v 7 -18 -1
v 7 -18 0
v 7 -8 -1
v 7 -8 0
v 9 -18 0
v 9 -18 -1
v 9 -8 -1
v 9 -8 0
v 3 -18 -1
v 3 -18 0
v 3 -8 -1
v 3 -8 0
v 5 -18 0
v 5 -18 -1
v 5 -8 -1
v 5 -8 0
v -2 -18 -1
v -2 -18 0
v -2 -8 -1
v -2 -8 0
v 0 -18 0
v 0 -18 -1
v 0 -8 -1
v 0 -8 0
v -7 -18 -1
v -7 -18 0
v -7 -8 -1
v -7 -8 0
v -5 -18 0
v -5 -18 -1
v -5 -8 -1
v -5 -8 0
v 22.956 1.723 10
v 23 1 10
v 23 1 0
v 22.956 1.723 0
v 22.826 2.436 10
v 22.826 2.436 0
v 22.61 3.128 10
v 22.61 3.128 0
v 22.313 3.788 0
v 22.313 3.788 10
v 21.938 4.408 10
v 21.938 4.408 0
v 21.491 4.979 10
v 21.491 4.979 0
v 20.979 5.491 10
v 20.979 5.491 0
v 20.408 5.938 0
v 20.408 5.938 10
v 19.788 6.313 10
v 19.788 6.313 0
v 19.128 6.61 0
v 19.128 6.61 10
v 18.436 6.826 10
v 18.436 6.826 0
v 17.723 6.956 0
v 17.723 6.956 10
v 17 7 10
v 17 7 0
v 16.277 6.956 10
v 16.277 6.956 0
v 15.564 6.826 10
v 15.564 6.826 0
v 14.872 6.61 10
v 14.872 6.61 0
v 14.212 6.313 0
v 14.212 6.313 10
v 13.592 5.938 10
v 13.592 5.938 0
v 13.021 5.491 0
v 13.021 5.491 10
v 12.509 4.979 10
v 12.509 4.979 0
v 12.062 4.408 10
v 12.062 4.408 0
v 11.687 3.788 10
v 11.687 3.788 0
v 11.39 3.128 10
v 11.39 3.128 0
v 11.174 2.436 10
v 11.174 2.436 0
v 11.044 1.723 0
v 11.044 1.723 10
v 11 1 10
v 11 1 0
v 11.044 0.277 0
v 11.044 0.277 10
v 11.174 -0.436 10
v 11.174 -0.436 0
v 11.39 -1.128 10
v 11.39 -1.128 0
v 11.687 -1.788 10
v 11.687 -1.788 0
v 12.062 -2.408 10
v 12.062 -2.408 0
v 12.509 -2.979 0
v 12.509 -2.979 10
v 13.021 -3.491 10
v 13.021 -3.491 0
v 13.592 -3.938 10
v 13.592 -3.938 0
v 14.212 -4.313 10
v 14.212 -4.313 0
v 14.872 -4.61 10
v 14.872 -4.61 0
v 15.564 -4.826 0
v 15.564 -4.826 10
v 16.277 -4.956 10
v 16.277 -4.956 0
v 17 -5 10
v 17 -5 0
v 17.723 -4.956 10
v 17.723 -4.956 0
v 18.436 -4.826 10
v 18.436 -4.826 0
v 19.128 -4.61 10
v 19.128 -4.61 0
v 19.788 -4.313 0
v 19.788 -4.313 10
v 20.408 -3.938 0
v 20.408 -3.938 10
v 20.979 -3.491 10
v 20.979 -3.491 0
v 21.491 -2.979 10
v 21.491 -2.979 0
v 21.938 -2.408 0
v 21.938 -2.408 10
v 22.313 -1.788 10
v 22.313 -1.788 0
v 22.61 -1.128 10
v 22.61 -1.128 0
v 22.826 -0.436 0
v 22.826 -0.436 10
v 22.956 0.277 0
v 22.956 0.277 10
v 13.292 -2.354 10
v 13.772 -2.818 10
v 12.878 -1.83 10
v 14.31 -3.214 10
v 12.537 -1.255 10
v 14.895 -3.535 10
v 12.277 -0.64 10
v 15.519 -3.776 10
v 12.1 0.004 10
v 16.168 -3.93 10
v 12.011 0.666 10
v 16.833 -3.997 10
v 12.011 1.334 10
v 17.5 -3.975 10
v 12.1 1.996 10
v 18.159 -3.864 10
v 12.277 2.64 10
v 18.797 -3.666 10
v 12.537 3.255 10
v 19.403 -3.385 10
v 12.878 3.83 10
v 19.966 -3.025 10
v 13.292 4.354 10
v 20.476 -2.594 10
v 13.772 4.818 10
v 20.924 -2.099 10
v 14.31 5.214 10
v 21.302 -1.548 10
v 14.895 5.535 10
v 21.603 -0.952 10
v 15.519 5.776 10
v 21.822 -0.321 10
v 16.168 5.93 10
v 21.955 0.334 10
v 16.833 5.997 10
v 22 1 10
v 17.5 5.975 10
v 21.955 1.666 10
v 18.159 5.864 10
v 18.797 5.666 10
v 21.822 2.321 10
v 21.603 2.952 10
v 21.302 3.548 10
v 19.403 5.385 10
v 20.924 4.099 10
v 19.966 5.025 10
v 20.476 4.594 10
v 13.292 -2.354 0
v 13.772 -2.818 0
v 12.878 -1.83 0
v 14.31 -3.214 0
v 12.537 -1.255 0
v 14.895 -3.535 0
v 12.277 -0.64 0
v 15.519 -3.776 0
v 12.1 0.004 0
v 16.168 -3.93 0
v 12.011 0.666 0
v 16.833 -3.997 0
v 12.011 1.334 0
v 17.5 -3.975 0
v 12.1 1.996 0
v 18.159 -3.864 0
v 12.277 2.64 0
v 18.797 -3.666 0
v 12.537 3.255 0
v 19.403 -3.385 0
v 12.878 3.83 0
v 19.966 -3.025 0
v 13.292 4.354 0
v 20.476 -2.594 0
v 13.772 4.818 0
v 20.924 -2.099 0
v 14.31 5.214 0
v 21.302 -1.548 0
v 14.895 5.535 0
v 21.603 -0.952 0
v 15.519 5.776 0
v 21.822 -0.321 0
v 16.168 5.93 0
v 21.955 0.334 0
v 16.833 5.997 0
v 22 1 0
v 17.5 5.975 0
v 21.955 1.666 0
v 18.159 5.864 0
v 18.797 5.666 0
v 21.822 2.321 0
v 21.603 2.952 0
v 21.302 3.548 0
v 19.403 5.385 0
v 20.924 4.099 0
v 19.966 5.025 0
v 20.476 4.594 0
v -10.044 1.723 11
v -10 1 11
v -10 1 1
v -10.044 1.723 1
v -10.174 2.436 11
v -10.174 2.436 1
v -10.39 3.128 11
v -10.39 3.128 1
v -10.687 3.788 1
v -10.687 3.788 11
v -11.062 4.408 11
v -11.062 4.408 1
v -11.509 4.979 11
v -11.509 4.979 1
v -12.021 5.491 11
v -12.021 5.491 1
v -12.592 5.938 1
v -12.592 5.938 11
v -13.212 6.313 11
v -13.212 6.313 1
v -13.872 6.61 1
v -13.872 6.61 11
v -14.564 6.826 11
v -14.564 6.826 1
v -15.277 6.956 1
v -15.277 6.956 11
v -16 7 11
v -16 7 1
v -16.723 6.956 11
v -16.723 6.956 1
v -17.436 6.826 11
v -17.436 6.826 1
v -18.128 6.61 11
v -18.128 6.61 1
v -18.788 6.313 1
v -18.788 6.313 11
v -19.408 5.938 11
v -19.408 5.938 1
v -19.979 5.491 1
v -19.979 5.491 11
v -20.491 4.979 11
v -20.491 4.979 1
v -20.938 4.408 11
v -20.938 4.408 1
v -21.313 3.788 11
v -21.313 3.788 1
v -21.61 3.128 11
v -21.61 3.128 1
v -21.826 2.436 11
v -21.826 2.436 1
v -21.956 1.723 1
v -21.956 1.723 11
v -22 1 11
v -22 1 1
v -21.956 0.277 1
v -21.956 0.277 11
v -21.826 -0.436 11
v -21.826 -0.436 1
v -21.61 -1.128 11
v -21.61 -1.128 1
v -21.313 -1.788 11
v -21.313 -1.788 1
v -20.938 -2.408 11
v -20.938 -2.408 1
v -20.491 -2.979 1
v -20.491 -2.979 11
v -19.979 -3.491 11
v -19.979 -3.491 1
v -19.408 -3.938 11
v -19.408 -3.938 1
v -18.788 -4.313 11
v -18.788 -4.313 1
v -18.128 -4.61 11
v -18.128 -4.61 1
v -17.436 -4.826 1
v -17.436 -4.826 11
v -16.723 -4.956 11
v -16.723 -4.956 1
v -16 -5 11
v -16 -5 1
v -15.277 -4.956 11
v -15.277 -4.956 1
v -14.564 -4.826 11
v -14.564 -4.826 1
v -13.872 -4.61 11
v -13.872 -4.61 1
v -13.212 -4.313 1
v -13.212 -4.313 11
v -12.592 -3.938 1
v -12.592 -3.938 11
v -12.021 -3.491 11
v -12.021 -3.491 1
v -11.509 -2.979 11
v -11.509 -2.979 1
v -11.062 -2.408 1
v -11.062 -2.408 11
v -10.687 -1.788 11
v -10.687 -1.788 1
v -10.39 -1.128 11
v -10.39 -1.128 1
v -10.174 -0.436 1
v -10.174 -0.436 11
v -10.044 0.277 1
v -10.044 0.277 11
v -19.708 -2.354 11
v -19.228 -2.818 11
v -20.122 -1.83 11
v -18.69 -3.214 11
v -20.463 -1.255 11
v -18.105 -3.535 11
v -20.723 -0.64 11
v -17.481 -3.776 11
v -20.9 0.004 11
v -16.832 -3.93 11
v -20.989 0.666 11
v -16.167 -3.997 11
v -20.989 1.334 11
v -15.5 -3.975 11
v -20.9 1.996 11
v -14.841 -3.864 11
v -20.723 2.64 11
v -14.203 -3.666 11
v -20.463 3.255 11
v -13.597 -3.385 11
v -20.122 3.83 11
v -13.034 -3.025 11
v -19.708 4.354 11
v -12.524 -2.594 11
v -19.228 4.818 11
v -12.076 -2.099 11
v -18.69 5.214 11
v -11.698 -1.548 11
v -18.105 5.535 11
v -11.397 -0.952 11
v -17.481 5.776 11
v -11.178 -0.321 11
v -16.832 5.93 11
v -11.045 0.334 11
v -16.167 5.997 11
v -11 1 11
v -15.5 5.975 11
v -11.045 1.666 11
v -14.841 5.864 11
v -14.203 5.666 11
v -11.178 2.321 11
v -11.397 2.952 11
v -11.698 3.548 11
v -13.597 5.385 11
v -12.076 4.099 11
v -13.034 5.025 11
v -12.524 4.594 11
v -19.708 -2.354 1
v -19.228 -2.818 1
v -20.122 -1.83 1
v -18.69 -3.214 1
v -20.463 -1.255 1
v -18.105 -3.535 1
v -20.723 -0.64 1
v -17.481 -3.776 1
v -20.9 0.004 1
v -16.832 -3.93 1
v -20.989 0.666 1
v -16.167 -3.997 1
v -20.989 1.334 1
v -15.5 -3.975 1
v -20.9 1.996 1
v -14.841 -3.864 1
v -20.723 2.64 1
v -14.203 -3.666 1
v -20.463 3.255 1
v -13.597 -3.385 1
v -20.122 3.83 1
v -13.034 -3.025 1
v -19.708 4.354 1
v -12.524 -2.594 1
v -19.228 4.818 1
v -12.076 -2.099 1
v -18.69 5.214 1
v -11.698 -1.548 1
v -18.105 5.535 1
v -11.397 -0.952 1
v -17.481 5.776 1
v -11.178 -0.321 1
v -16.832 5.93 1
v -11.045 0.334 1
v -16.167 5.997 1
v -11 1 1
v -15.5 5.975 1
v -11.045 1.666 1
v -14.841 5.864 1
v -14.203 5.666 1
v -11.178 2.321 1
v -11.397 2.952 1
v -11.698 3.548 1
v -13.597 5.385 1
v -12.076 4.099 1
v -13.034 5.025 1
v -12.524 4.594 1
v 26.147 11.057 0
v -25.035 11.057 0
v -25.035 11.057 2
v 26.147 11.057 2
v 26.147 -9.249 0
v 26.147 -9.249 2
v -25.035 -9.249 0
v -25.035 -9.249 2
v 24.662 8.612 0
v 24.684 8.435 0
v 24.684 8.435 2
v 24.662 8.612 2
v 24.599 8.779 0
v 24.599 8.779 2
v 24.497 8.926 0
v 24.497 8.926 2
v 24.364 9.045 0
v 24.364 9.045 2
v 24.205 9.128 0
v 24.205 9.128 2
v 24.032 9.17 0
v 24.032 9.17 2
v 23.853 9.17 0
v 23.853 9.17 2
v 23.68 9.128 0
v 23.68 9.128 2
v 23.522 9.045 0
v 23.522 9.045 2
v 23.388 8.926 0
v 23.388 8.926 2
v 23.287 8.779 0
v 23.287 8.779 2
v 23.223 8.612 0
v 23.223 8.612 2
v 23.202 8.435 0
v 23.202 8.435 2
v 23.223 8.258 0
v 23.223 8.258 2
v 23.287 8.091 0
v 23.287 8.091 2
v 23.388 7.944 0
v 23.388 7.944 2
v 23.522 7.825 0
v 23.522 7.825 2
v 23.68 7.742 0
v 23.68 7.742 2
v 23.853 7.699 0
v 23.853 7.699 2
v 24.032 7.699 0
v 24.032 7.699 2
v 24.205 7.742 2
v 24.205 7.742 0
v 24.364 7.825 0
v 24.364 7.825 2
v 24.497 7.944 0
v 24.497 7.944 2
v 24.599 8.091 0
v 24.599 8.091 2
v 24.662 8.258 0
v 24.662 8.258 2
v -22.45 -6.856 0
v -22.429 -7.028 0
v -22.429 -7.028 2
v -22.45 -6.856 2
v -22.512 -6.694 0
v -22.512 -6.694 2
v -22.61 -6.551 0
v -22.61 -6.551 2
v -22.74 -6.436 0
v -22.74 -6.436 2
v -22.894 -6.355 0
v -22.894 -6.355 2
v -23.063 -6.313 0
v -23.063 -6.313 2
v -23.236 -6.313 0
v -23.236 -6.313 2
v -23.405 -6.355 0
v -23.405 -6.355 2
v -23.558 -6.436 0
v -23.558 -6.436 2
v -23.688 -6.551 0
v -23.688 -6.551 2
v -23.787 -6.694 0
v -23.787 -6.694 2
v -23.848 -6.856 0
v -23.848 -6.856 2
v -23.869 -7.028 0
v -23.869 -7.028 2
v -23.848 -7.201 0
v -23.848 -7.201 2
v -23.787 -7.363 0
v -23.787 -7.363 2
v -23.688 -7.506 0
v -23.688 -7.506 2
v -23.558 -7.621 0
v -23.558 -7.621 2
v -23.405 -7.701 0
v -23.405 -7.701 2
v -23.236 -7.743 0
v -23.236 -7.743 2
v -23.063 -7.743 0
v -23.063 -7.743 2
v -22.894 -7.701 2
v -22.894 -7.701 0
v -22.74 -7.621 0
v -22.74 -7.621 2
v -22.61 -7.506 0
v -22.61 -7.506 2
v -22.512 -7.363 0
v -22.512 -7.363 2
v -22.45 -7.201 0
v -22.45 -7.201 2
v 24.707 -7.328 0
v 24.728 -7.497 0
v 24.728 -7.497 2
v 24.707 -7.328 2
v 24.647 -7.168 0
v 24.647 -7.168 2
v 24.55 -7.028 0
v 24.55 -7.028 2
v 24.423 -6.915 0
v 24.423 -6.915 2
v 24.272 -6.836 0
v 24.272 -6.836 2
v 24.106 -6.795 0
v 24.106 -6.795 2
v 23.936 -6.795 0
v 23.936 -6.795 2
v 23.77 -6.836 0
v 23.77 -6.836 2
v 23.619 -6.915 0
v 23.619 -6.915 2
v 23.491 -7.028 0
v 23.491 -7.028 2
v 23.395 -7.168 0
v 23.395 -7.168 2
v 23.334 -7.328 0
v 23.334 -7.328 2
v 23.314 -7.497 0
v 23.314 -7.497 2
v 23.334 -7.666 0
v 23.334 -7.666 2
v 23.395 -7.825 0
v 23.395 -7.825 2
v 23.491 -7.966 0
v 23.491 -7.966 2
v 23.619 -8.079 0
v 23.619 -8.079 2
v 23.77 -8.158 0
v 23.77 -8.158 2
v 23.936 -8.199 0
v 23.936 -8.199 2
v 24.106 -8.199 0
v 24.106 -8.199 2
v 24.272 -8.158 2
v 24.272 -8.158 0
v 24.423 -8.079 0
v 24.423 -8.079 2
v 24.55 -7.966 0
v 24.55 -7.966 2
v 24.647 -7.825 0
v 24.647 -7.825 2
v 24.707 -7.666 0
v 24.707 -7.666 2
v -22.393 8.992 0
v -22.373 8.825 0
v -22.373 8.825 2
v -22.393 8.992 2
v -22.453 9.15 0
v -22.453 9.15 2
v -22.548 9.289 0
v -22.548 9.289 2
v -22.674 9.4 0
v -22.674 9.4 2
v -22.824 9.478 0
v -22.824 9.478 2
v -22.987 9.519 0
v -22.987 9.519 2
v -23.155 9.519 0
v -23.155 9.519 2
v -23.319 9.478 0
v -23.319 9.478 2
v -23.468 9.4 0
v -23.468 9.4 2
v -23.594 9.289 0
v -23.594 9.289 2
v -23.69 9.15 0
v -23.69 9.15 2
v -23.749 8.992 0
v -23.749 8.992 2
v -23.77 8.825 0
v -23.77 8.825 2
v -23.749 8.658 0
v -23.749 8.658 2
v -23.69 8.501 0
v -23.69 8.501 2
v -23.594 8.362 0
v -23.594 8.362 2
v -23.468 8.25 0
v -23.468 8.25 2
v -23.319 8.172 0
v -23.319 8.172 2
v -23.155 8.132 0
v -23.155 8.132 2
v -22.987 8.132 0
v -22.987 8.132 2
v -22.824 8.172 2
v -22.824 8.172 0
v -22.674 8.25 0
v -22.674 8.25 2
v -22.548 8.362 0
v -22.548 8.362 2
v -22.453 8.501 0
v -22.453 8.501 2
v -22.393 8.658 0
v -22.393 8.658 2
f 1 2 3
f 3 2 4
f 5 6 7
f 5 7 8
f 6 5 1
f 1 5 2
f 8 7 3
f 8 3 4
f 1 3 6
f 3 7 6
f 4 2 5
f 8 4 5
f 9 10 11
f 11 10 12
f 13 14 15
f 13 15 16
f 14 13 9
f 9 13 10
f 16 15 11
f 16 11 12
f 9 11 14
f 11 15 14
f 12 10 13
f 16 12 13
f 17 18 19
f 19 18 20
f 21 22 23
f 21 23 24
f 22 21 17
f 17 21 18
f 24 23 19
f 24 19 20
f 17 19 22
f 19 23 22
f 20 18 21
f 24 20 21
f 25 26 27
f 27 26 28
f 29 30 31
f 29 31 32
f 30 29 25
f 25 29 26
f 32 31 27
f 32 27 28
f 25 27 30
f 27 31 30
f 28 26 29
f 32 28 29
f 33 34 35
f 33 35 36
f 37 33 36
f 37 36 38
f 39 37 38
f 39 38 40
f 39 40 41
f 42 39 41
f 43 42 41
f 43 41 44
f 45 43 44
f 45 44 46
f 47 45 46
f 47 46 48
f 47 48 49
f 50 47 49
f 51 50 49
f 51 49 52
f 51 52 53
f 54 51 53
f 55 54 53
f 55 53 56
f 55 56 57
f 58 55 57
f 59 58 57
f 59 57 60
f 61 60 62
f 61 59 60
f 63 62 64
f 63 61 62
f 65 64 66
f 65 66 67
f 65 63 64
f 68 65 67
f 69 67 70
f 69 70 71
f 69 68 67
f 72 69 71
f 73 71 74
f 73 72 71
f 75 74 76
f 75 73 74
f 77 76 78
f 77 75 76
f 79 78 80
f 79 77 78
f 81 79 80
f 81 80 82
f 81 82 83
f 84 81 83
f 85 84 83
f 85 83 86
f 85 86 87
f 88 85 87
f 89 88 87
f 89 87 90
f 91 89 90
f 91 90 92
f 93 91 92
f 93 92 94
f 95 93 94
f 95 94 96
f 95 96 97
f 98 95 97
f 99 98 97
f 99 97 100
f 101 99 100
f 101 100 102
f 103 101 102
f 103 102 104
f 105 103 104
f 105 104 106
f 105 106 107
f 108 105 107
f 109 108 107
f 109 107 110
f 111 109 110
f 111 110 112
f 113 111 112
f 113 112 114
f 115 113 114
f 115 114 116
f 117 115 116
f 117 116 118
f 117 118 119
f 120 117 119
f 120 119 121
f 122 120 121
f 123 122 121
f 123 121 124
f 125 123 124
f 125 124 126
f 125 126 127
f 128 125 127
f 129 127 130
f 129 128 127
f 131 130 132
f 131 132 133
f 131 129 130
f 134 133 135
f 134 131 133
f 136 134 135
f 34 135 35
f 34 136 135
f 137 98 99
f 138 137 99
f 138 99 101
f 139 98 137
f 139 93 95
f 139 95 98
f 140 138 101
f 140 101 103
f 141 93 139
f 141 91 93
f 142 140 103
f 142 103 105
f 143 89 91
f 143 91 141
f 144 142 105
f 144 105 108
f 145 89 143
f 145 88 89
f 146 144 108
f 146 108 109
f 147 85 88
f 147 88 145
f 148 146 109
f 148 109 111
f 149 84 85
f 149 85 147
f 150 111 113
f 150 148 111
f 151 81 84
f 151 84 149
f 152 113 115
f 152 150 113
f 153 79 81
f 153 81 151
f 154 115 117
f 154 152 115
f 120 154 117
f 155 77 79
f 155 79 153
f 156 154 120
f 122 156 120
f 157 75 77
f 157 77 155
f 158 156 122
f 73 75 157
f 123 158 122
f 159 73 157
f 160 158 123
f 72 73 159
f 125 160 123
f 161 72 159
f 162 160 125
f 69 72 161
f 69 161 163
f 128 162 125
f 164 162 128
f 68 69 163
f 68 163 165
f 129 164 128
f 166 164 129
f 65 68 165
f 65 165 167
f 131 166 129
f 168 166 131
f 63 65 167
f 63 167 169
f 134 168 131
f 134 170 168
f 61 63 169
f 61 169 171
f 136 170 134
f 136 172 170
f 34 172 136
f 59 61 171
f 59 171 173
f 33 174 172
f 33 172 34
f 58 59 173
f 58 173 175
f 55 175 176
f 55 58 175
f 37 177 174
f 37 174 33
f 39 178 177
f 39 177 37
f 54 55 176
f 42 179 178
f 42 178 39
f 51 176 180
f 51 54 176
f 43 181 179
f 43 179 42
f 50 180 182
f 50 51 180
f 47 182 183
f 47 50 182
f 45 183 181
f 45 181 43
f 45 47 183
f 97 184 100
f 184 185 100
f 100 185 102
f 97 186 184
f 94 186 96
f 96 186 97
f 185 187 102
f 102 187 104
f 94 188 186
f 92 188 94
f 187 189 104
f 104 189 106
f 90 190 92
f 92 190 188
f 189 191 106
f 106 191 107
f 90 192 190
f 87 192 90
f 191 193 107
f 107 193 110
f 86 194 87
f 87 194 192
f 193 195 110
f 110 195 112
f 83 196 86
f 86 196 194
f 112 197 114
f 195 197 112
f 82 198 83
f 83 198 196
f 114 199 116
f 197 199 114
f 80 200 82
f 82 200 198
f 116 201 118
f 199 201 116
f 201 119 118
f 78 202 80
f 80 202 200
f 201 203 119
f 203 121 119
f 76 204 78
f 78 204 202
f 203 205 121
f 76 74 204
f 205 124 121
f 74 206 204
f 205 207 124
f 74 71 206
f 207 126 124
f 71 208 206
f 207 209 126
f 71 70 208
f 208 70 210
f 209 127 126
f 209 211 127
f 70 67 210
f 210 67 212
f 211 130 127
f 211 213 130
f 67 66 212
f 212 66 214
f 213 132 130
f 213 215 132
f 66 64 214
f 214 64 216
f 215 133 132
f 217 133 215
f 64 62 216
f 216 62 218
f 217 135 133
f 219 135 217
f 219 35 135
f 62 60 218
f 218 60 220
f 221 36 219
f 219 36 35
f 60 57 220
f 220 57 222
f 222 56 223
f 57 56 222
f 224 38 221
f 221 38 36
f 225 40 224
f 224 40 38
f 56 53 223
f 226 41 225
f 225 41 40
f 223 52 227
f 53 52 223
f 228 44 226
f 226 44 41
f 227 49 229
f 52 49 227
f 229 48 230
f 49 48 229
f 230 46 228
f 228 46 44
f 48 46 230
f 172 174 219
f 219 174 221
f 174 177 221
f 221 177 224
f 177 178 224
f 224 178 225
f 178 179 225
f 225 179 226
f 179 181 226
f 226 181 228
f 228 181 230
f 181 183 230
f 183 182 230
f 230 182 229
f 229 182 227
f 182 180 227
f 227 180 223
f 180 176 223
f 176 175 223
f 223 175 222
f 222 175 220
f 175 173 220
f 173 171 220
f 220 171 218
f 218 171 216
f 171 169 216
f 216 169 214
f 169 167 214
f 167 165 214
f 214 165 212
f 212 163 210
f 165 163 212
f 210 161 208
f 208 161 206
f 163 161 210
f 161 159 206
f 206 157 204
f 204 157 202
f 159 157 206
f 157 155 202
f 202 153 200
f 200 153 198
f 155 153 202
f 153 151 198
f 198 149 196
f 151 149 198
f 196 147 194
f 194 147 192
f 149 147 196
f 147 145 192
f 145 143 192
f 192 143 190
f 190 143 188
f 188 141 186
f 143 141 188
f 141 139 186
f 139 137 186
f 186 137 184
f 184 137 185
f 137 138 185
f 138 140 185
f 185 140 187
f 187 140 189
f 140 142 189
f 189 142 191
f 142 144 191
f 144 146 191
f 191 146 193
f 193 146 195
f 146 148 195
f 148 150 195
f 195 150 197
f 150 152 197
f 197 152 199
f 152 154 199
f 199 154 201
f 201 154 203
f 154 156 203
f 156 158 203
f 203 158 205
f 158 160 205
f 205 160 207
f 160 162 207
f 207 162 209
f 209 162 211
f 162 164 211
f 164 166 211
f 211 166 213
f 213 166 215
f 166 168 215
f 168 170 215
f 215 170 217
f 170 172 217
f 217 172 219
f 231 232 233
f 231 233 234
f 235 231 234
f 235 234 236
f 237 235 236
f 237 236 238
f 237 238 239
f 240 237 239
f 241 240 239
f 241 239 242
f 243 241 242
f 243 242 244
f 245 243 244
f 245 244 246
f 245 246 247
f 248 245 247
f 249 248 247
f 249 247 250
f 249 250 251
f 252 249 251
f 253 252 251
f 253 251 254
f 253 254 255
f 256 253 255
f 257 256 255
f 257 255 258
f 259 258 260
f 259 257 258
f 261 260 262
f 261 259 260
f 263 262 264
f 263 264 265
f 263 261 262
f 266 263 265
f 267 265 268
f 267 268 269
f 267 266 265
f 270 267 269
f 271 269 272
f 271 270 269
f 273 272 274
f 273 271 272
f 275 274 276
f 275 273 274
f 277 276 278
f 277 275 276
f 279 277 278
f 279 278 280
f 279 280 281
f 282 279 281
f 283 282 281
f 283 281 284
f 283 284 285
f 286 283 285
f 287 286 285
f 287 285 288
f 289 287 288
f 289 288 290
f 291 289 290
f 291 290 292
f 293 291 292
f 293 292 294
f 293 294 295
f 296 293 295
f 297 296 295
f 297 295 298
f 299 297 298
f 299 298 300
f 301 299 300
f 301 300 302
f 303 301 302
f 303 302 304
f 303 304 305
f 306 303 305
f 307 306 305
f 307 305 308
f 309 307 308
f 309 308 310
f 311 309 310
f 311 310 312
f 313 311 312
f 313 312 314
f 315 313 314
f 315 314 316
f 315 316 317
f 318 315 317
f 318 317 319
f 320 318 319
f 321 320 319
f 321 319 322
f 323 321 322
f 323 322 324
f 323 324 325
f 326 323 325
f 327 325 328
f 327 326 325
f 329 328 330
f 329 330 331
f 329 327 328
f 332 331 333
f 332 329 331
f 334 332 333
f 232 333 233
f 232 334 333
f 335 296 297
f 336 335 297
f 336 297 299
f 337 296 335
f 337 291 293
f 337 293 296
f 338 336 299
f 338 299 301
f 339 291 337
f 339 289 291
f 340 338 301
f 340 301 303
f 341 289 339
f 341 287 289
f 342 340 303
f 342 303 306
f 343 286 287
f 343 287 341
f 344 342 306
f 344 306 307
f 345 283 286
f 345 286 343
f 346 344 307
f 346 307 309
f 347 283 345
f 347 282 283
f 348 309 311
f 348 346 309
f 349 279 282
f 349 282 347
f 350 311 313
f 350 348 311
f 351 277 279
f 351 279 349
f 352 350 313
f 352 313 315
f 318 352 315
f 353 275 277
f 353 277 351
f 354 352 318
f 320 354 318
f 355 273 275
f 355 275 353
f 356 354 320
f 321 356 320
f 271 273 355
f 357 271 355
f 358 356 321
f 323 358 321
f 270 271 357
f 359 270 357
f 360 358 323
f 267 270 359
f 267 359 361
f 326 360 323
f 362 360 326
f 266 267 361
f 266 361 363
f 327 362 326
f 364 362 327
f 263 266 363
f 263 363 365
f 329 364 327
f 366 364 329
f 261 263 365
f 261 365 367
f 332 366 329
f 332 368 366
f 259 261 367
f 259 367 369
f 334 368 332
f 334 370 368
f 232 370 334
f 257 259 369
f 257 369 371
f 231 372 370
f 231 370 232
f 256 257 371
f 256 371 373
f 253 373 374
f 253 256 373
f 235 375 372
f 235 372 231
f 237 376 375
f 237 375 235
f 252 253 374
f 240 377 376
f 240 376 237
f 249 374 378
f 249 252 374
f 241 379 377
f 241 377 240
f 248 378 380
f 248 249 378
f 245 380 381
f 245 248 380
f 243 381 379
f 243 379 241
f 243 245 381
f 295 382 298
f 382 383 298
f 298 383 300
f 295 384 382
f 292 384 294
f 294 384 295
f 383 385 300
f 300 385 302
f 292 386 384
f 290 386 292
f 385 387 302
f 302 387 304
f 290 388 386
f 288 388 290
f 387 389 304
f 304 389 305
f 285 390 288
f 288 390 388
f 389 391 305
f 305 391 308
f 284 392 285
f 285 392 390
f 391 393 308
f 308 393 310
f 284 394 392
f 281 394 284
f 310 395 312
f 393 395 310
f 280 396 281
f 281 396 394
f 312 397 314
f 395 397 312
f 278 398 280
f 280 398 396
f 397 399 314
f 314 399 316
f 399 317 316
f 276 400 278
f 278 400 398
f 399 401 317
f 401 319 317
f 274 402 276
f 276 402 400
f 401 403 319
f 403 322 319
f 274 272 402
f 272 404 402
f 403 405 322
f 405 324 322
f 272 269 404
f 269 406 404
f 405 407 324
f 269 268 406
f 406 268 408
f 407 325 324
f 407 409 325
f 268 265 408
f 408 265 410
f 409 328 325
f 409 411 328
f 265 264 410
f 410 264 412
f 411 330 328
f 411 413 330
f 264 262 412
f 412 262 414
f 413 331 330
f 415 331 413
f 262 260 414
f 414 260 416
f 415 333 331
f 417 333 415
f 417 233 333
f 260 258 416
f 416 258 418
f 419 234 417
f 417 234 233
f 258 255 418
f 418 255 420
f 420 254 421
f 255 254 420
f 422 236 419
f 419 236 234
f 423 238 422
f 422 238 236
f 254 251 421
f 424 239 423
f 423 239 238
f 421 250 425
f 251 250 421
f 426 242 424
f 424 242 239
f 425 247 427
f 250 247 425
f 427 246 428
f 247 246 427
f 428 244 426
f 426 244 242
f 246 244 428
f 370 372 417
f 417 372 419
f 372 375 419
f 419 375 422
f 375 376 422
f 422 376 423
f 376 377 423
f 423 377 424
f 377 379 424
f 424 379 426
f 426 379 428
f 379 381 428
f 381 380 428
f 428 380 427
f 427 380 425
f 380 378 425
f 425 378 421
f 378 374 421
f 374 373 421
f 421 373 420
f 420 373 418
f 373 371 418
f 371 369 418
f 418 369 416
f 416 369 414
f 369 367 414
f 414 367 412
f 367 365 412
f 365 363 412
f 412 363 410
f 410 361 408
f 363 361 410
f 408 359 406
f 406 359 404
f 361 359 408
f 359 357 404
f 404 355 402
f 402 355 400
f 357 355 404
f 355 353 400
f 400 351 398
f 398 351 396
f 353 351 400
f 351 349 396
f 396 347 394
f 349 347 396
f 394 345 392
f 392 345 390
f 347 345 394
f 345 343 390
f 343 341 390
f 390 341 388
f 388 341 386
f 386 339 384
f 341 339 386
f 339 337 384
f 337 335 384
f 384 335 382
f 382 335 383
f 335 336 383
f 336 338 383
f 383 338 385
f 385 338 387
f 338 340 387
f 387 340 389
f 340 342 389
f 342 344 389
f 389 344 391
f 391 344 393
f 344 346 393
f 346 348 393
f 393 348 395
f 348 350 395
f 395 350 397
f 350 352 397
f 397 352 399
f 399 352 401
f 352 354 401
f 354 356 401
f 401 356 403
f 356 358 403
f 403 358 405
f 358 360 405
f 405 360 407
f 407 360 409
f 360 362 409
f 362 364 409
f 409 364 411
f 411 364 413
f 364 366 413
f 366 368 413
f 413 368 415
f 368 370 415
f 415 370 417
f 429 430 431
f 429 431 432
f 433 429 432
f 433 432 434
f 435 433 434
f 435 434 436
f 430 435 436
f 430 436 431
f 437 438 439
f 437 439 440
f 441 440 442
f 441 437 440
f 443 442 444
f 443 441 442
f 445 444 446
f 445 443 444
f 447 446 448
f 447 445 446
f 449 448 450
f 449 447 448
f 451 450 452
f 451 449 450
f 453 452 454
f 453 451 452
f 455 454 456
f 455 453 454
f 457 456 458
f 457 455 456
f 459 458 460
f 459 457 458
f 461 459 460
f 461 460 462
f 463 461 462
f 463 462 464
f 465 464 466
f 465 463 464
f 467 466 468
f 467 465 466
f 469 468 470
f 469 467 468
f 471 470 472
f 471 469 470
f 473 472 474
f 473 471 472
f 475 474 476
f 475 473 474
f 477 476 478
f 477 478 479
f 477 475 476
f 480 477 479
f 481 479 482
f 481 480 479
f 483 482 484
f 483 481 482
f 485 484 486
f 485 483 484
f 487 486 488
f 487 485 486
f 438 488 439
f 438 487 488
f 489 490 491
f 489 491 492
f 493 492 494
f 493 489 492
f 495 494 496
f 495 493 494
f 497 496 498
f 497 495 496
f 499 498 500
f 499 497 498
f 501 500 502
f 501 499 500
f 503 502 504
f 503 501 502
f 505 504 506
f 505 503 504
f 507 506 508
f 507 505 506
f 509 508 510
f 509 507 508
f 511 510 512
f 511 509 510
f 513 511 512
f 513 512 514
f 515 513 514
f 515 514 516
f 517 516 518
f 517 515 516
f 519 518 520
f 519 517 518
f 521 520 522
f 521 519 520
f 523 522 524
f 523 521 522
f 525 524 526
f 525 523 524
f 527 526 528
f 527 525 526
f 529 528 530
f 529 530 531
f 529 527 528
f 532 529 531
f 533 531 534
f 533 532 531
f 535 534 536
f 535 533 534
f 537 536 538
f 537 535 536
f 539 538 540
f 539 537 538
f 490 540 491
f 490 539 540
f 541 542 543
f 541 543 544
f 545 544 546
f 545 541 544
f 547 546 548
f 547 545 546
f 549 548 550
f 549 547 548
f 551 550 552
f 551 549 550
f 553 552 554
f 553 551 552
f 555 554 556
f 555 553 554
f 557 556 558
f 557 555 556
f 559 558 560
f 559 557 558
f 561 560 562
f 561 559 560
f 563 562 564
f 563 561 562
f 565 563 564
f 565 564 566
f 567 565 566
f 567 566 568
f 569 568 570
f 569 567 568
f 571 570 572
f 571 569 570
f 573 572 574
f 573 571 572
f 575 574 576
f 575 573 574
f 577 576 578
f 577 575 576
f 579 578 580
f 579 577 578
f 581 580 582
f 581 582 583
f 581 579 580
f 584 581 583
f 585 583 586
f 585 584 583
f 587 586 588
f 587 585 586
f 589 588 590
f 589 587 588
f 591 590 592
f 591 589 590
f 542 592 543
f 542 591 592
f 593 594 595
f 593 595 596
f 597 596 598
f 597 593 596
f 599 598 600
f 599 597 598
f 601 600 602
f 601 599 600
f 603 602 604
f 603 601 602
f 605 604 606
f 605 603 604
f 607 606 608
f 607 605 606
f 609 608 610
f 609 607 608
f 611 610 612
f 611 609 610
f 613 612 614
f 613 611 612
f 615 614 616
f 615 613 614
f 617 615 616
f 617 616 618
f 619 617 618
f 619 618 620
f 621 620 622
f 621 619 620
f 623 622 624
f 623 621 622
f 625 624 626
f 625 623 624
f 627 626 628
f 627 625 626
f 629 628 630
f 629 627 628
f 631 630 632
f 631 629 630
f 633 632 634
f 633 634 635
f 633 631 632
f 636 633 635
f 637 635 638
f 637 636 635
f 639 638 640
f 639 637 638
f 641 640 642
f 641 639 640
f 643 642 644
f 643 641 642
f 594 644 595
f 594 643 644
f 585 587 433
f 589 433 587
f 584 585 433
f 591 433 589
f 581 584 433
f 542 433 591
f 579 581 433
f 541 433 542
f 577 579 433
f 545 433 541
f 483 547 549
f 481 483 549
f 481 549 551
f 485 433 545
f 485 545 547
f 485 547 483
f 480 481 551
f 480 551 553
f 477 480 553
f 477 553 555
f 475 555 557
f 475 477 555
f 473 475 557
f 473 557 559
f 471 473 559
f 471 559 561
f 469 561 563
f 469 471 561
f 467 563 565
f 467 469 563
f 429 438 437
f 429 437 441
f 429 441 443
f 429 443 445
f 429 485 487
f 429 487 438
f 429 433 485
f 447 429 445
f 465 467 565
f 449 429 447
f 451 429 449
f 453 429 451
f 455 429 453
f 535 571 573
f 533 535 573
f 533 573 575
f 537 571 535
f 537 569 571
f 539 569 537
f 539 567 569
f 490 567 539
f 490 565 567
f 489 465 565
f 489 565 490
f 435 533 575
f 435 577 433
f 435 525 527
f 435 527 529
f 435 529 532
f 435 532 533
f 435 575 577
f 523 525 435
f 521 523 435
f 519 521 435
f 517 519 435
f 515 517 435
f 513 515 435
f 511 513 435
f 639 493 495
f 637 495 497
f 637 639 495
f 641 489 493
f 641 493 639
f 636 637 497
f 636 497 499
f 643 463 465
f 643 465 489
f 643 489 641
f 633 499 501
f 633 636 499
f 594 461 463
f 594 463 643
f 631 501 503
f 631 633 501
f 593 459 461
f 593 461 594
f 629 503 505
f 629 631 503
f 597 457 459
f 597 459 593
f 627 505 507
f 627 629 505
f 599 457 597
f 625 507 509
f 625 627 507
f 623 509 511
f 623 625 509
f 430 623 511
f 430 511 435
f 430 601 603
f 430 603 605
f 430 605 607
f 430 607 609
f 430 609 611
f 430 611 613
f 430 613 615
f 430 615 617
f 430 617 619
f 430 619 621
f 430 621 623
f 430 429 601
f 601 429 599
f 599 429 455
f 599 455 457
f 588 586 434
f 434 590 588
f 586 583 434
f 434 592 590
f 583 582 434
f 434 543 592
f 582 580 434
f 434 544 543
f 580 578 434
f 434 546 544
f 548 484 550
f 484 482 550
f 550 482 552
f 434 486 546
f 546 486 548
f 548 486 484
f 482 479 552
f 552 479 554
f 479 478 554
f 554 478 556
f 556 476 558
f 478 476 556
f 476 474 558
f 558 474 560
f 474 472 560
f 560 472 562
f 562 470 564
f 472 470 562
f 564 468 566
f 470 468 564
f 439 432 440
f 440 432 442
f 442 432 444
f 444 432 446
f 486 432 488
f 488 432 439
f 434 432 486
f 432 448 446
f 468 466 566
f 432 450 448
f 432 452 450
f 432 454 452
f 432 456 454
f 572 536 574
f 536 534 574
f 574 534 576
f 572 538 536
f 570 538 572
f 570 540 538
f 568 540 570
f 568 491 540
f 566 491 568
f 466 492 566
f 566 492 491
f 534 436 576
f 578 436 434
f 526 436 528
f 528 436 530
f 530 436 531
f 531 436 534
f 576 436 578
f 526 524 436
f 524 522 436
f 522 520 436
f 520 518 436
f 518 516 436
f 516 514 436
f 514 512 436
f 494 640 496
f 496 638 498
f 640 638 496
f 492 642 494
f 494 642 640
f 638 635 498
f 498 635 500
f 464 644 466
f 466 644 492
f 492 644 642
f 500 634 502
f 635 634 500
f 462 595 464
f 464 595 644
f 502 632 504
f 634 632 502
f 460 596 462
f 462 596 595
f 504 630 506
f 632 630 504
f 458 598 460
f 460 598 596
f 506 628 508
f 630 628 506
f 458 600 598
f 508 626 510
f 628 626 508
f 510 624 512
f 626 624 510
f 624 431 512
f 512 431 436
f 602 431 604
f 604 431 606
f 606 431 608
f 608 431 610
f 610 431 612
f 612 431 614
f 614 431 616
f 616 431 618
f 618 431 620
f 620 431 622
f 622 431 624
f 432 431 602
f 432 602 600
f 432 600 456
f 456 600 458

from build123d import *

# Parameters (mm, degrees)
SKETCH_W      = 51.182196
SKETCH_H      = 20.305982
SKETCH_R      = 0.698514
SKETCH_R_2    = 0.740892
SKETCH_R_3    = 0.707187
SKETCH_R_4    = 0.720017
PAD_DEPTH     = 2
TUBE_R        = 6
TUBE_R_2      = 5
TUBE_DEPTH    = 10
TUBE001_R     = 6
TUBE001_R_2   = 5
TUBE001_DEPTH = 10
BOX_W         = 2
BOX_H         = 10
BOX_DEPTH     = 1
BOX001_W      = 2
BOX001_H      = 10
BOX001_DEPTH  = 1
BOX002_W      = 2
BOX002_H      = 10
BOX002_DEPTH  = 1
BOX003_W      = 2
BOX003_H      = 10
BOX003_DEPTH  = 1


with BuildPart() as body:
    # Sketch → Pad (new body)
    with BuildSketch(Plane.XY):
        with Locations((0.556327, 0.904034)):
            Rectangle(SKETCH_W, SKETCH_H)
        with Locations((-23.071247, 8.825307)):
            Circle(SKETCH_R, mode=Mode.SUBTRACT)
        with Locations((23.942686, 8.434824)):
            Circle(SKETCH_R_2, mode=Mode.SUBTRACT)
        with Locations((24.020786, -7.496809)):
            Circle(SKETCH_R_3, mode=Mode.SUBTRACT)
        with Locations((-23.149347, -7.02823)):
            Circle(SKETCH_R_4, mode=Mode.SUBTRACT)
    extrude(amount=PAD_DEPTH)


with BuildPart() as cilindro1:
    # Tube → Tube (new body)
    with BuildSketch(Plane(origin=(-16, 1, 1), x_dir=(1, 0, 0), z_dir=(0, 0, 1))):
        Circle(TUBE_R)
        Circle(TUBE_R_2, mode=Mode.SUBTRACT)
    extrude(amount=TUBE_DEPTH)


with BuildPart() as cilindro2:
    # Tube001 → Tube001 (new body)
    with BuildSketch(Plane(origin=(17, 1, 0), x_dir=(1, 0, 0), z_dir=(0, 0, 1))):
        Circle(TUBE001_R)
        Circle(TUBE001_R_2, mode=Mode.SUBTRACT)
    extrude(amount=TUBE001_DEPTH)


with BuildPart() as contacto1:
    # Box → Box (new body)
    with BuildSketch(Plane(origin=(-7, -18, -1), x_dir=(1, 0, 0), z_dir=(0, 0, 1))):
        with Locations((1, 5)):
            Rectangle(BOX_W, BOX_H)
    extrude(amount=BOX_DEPTH)


with BuildPart() as contacto2:
    # Box001 → Box001 (new body)
    with BuildSketch(Plane(origin=(-2, -18, -1), x_dir=(1, 0, 0), z_dir=(0, 0, 1))):
        with Locations((1, 5)):
            Rectangle(BOX001_W, BOX001_H)
    extrude(amount=BOX001_DEPTH)


with BuildPart() as contacto3:
    # Box002 → Box002 (new body)
    with BuildSketch(Plane(origin=(3, -18, -1), x_dir=(1, 0, 0), z_dir=(0, 0, 1))):
        with Locations((1, 5)):
            Rectangle(BOX002_W, BOX002_H)
    extrude(amount=BOX002_DEPTH)


with BuildPart() as contacto4:
    # Box003 → Box003 (new body)
    with BuildSketch(Plane(origin=(7, -18, -1), x_dir=(1, 0, 0), z_dir=(0, 0, 1))):
        with Locations((1, 5)):
            Rectangle(BOX003_W, BOX003_H)
    extrude(amount=BOX003_DEPTH)


solid = Compound([body.part, cilindro1.part, cilindro2.part, contacto1.part, contacto2.part, contacto3.part, contacto4.part])
